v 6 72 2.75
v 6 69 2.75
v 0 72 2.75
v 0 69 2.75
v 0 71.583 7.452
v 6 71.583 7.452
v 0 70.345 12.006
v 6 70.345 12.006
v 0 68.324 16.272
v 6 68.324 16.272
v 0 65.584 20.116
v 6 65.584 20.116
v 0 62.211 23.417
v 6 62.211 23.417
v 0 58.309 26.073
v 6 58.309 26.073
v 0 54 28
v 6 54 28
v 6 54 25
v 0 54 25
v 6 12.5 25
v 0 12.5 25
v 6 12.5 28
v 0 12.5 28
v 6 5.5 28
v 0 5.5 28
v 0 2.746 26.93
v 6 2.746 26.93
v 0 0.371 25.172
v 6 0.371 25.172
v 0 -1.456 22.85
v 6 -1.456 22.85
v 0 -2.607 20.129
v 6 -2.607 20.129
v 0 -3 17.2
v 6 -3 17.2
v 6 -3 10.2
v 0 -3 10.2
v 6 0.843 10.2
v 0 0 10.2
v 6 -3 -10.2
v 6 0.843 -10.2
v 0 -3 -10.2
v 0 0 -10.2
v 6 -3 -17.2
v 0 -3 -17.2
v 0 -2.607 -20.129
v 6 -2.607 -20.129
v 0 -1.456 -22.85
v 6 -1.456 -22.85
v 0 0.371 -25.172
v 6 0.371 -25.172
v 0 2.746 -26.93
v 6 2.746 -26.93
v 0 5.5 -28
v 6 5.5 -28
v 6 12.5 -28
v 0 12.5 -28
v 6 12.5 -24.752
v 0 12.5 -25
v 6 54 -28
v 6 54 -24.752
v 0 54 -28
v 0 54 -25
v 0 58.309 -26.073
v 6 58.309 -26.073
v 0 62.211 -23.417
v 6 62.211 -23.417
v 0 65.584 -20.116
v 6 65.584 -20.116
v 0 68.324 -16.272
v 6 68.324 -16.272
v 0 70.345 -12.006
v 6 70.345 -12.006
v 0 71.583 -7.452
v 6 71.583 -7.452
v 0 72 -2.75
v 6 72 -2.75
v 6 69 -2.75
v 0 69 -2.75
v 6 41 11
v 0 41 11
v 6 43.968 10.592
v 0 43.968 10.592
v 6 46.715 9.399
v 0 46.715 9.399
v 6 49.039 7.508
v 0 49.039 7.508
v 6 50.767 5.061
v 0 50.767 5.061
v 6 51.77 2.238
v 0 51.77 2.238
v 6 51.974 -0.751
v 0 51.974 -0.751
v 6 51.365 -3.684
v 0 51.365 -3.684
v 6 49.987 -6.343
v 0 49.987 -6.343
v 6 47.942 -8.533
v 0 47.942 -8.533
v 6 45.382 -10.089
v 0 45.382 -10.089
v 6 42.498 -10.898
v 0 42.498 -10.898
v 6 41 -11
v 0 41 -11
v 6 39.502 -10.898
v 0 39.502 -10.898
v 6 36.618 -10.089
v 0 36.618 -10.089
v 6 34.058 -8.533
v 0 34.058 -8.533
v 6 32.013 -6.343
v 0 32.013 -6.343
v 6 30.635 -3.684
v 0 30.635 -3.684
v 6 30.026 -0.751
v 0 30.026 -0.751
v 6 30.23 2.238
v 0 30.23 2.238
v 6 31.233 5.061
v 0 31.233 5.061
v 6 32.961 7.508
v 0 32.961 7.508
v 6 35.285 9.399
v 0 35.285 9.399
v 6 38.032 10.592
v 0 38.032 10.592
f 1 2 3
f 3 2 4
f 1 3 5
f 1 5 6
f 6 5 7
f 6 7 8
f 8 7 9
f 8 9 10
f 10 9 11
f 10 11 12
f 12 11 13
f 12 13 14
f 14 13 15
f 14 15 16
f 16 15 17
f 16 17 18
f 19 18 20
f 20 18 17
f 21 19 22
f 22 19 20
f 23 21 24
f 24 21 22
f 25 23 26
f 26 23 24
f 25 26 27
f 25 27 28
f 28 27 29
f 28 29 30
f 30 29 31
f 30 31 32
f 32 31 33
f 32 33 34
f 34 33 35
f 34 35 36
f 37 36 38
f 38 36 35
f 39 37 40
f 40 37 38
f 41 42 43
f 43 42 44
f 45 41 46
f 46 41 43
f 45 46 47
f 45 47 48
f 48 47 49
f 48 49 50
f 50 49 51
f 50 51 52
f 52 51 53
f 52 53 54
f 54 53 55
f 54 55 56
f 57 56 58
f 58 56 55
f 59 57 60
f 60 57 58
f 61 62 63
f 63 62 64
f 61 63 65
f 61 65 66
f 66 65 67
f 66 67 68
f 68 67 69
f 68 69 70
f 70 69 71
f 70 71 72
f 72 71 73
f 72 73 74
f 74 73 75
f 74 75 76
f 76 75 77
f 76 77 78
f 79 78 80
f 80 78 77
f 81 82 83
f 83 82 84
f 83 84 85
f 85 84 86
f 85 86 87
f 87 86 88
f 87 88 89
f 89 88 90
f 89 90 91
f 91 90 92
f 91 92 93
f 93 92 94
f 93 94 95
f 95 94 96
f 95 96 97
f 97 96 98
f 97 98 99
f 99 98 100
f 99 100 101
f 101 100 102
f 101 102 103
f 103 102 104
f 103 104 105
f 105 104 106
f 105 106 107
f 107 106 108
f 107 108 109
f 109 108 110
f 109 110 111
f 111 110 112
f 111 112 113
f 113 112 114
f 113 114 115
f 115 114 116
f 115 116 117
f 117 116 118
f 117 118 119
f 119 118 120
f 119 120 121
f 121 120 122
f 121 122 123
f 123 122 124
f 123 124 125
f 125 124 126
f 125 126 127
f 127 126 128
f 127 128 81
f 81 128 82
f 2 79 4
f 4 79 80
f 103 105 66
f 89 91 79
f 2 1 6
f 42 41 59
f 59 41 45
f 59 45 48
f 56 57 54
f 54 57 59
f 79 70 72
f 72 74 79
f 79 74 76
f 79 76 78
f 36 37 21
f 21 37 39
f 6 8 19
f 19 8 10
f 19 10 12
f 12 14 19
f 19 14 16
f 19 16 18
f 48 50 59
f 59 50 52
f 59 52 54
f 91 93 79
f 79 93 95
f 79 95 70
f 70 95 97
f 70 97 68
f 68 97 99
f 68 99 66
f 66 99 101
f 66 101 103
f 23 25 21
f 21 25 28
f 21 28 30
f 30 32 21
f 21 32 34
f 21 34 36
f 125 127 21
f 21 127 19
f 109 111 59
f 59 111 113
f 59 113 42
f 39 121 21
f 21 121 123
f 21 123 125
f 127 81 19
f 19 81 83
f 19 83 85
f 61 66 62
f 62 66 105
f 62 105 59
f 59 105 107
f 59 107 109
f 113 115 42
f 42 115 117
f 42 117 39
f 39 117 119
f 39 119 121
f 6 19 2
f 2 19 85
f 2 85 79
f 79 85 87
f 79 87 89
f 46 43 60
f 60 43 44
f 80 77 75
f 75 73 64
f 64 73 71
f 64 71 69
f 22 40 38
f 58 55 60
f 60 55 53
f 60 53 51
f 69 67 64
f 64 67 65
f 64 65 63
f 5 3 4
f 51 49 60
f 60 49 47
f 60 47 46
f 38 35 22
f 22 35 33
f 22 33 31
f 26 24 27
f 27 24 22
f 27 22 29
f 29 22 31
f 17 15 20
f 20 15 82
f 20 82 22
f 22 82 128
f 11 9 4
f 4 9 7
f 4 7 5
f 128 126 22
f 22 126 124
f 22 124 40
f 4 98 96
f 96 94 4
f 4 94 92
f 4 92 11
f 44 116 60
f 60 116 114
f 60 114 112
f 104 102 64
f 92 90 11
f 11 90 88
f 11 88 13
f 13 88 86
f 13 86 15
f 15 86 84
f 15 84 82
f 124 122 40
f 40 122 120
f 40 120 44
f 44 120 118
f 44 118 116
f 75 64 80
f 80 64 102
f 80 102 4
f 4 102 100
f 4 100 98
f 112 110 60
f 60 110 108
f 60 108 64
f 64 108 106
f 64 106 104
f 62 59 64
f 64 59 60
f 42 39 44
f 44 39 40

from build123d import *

# Parameters (mm, degrees)
SKETCH1_R           = 11
BOSS_EXTRUDE1_DEPTH = 6
CUT_EXTRUDE3_DEPTH  = 41.5
CUT_EXTRUDE5_DEPTH  = 20.4


with BuildPart() as part:
    # Sketch1 → Boss-Extrude1 (new body)
    with BuildSketch(Plane(origin=(0, 0, 0), x_dir=(0, 0, -1), z_dir=(1, 0, 0))):
        with BuildLine():
            Line((-10.2, -3), (-10.2, 0))
            Line((-10.2, 0), (10.2, 0))
            Line((10.2, 0), (10.2, -3))
            Line((10.2, -3), (17.2, -3))
            ThreePointArc((17.2, -3), (24.071862921, -0.620131711), (28, 5.5))
            Line((28, 5.5), (28, 12.5))
            Line((28, 12.5), (25, 12.5))
            Line((25, 12.5), (25, 41))
            Line((25, 41), (25, 54))
            Line((25, 54), (28, 54))
            ThreePointArc((28, 54), (18.254535627, 67.039348587), (2.75, 72))
            Line((2.75, 72), (2.75, 69))
            Line((2.75, 69), (-2.75, 69))
            Line((-2.75, 69), (-2.75, 72))
            ThreePointArc((-2.75, 72), (-18.254535627, 67.039348587), (-28, 54))
            Line((-28, 54), (-25, 54))
            Line((-25, 54), (-25, 41))
            Line((-25, 41), (-25, 12.5))
            Line((-25, 12.5), (-28, 12.5))
            Line((-28, 12.5), (-28, 5.5))
            ThreePointArc((-28, 5.5), (-24.071862921, -0.620131711), (-17.2, -3))
            Line((-17.2, -3), (-10.2, -3))
        make_face()
        with Locations((0, 41)):
            Circle(SKETCH1_R, mode=Mode.SUBTRACT)
    extrude(amount=BOSS_EXTRUDE1_DEPTH)

    # Sketch5 → Cut-Extrude3 (cut)
    with BuildSketch(Plane.XZ.offset(-54)):
        Polygon((0, -25), (6, -25), (6, -24.751672534), align=None)
    extrude(amount=CUT_EXTRUDE3_DEPTH, mode=Mode.SUBTRACT)

    # Sketch6 → Cut-Extrude5 (cut)
    with BuildSketch(Plane.XY.offset(-10.2)):
        Polygon((0, 0), (6, 0), (6, 0.843245008), align=None)
    extrude(amount=CUT_EXTRUDE5_DEPTH, mode=Mode.SUBTRACT)


solid = part.part
